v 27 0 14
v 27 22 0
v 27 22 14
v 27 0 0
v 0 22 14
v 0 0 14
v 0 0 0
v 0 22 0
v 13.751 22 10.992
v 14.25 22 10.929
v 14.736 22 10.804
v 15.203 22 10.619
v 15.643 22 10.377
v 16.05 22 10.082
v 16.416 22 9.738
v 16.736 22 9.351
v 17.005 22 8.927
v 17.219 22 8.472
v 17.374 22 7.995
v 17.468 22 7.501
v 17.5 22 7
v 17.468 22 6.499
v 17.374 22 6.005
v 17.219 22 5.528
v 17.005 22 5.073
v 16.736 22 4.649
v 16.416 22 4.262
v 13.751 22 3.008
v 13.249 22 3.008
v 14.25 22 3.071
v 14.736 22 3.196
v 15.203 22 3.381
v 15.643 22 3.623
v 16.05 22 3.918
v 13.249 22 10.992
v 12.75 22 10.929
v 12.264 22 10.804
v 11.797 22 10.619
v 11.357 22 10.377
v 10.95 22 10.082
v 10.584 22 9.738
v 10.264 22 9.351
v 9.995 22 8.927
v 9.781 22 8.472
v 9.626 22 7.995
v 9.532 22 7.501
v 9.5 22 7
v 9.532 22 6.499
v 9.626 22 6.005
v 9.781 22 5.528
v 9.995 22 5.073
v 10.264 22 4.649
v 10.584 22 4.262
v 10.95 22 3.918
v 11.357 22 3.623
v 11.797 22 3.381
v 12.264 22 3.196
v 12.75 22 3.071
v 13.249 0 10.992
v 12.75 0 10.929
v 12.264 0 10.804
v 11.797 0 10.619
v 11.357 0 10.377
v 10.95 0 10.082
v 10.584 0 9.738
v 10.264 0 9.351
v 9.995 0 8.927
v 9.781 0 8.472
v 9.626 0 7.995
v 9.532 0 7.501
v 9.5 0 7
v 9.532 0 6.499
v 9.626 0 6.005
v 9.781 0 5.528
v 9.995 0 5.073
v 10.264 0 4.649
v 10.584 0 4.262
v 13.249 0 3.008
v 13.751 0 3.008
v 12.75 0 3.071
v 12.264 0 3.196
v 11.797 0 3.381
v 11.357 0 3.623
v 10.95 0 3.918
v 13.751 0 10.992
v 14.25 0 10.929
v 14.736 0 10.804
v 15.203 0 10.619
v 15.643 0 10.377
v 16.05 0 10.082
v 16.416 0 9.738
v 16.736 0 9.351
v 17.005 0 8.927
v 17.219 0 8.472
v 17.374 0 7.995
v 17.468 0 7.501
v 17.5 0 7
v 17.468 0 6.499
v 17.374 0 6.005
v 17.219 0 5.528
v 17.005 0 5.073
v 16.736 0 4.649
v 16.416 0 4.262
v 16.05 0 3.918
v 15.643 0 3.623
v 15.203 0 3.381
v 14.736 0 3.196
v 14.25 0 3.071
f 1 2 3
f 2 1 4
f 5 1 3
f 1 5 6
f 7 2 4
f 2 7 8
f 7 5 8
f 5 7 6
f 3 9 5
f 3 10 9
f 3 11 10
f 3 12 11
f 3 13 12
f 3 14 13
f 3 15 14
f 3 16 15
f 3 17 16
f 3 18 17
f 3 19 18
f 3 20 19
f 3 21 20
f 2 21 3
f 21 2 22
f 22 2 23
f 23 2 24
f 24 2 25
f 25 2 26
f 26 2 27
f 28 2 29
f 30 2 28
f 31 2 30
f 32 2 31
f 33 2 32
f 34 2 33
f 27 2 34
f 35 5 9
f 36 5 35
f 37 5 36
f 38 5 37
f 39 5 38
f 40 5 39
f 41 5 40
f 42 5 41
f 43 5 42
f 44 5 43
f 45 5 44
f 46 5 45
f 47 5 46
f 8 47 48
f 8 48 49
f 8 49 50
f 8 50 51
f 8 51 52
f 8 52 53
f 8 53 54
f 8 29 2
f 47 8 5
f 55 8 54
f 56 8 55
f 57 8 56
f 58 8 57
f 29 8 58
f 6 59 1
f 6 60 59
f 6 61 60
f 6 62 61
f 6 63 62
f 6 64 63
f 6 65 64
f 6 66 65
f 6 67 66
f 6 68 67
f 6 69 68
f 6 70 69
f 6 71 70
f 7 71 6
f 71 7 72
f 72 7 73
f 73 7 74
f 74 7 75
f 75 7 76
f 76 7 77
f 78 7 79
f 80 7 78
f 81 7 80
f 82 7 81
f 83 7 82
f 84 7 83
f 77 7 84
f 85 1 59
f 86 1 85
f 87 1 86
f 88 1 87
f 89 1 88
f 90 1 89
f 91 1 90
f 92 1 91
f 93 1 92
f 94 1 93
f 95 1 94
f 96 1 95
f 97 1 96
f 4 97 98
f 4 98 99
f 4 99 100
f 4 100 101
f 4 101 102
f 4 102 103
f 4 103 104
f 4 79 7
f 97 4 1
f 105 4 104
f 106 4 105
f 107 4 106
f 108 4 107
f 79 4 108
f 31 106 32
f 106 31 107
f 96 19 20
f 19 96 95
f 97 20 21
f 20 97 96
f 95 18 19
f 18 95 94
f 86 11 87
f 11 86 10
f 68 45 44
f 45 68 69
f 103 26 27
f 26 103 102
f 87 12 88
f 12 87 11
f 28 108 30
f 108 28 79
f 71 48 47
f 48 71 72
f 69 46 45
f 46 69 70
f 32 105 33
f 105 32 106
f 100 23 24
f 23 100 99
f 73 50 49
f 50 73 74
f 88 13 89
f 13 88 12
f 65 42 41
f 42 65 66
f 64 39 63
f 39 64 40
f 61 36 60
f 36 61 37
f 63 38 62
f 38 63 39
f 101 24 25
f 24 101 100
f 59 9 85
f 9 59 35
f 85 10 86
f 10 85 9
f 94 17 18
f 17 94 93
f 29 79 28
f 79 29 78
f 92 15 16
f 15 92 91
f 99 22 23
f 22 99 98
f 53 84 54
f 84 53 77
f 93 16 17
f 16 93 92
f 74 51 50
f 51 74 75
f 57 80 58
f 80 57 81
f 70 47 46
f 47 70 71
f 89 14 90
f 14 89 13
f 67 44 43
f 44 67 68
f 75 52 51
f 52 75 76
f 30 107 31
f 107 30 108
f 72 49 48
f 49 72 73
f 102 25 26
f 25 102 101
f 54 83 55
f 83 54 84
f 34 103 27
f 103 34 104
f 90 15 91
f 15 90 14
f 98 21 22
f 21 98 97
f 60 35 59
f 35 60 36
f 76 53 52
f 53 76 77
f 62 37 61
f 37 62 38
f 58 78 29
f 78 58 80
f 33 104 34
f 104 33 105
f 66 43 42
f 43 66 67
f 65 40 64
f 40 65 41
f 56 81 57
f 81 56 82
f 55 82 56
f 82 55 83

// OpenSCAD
x=27;
y=22;
z=14;

difference(){
    cube([x,y,z]);

    translate([x/2,y,(z/2)]){
        rotate([90,0,0]){
            cylinder(h=(y), r=4, $fn=50);
          }}
}
